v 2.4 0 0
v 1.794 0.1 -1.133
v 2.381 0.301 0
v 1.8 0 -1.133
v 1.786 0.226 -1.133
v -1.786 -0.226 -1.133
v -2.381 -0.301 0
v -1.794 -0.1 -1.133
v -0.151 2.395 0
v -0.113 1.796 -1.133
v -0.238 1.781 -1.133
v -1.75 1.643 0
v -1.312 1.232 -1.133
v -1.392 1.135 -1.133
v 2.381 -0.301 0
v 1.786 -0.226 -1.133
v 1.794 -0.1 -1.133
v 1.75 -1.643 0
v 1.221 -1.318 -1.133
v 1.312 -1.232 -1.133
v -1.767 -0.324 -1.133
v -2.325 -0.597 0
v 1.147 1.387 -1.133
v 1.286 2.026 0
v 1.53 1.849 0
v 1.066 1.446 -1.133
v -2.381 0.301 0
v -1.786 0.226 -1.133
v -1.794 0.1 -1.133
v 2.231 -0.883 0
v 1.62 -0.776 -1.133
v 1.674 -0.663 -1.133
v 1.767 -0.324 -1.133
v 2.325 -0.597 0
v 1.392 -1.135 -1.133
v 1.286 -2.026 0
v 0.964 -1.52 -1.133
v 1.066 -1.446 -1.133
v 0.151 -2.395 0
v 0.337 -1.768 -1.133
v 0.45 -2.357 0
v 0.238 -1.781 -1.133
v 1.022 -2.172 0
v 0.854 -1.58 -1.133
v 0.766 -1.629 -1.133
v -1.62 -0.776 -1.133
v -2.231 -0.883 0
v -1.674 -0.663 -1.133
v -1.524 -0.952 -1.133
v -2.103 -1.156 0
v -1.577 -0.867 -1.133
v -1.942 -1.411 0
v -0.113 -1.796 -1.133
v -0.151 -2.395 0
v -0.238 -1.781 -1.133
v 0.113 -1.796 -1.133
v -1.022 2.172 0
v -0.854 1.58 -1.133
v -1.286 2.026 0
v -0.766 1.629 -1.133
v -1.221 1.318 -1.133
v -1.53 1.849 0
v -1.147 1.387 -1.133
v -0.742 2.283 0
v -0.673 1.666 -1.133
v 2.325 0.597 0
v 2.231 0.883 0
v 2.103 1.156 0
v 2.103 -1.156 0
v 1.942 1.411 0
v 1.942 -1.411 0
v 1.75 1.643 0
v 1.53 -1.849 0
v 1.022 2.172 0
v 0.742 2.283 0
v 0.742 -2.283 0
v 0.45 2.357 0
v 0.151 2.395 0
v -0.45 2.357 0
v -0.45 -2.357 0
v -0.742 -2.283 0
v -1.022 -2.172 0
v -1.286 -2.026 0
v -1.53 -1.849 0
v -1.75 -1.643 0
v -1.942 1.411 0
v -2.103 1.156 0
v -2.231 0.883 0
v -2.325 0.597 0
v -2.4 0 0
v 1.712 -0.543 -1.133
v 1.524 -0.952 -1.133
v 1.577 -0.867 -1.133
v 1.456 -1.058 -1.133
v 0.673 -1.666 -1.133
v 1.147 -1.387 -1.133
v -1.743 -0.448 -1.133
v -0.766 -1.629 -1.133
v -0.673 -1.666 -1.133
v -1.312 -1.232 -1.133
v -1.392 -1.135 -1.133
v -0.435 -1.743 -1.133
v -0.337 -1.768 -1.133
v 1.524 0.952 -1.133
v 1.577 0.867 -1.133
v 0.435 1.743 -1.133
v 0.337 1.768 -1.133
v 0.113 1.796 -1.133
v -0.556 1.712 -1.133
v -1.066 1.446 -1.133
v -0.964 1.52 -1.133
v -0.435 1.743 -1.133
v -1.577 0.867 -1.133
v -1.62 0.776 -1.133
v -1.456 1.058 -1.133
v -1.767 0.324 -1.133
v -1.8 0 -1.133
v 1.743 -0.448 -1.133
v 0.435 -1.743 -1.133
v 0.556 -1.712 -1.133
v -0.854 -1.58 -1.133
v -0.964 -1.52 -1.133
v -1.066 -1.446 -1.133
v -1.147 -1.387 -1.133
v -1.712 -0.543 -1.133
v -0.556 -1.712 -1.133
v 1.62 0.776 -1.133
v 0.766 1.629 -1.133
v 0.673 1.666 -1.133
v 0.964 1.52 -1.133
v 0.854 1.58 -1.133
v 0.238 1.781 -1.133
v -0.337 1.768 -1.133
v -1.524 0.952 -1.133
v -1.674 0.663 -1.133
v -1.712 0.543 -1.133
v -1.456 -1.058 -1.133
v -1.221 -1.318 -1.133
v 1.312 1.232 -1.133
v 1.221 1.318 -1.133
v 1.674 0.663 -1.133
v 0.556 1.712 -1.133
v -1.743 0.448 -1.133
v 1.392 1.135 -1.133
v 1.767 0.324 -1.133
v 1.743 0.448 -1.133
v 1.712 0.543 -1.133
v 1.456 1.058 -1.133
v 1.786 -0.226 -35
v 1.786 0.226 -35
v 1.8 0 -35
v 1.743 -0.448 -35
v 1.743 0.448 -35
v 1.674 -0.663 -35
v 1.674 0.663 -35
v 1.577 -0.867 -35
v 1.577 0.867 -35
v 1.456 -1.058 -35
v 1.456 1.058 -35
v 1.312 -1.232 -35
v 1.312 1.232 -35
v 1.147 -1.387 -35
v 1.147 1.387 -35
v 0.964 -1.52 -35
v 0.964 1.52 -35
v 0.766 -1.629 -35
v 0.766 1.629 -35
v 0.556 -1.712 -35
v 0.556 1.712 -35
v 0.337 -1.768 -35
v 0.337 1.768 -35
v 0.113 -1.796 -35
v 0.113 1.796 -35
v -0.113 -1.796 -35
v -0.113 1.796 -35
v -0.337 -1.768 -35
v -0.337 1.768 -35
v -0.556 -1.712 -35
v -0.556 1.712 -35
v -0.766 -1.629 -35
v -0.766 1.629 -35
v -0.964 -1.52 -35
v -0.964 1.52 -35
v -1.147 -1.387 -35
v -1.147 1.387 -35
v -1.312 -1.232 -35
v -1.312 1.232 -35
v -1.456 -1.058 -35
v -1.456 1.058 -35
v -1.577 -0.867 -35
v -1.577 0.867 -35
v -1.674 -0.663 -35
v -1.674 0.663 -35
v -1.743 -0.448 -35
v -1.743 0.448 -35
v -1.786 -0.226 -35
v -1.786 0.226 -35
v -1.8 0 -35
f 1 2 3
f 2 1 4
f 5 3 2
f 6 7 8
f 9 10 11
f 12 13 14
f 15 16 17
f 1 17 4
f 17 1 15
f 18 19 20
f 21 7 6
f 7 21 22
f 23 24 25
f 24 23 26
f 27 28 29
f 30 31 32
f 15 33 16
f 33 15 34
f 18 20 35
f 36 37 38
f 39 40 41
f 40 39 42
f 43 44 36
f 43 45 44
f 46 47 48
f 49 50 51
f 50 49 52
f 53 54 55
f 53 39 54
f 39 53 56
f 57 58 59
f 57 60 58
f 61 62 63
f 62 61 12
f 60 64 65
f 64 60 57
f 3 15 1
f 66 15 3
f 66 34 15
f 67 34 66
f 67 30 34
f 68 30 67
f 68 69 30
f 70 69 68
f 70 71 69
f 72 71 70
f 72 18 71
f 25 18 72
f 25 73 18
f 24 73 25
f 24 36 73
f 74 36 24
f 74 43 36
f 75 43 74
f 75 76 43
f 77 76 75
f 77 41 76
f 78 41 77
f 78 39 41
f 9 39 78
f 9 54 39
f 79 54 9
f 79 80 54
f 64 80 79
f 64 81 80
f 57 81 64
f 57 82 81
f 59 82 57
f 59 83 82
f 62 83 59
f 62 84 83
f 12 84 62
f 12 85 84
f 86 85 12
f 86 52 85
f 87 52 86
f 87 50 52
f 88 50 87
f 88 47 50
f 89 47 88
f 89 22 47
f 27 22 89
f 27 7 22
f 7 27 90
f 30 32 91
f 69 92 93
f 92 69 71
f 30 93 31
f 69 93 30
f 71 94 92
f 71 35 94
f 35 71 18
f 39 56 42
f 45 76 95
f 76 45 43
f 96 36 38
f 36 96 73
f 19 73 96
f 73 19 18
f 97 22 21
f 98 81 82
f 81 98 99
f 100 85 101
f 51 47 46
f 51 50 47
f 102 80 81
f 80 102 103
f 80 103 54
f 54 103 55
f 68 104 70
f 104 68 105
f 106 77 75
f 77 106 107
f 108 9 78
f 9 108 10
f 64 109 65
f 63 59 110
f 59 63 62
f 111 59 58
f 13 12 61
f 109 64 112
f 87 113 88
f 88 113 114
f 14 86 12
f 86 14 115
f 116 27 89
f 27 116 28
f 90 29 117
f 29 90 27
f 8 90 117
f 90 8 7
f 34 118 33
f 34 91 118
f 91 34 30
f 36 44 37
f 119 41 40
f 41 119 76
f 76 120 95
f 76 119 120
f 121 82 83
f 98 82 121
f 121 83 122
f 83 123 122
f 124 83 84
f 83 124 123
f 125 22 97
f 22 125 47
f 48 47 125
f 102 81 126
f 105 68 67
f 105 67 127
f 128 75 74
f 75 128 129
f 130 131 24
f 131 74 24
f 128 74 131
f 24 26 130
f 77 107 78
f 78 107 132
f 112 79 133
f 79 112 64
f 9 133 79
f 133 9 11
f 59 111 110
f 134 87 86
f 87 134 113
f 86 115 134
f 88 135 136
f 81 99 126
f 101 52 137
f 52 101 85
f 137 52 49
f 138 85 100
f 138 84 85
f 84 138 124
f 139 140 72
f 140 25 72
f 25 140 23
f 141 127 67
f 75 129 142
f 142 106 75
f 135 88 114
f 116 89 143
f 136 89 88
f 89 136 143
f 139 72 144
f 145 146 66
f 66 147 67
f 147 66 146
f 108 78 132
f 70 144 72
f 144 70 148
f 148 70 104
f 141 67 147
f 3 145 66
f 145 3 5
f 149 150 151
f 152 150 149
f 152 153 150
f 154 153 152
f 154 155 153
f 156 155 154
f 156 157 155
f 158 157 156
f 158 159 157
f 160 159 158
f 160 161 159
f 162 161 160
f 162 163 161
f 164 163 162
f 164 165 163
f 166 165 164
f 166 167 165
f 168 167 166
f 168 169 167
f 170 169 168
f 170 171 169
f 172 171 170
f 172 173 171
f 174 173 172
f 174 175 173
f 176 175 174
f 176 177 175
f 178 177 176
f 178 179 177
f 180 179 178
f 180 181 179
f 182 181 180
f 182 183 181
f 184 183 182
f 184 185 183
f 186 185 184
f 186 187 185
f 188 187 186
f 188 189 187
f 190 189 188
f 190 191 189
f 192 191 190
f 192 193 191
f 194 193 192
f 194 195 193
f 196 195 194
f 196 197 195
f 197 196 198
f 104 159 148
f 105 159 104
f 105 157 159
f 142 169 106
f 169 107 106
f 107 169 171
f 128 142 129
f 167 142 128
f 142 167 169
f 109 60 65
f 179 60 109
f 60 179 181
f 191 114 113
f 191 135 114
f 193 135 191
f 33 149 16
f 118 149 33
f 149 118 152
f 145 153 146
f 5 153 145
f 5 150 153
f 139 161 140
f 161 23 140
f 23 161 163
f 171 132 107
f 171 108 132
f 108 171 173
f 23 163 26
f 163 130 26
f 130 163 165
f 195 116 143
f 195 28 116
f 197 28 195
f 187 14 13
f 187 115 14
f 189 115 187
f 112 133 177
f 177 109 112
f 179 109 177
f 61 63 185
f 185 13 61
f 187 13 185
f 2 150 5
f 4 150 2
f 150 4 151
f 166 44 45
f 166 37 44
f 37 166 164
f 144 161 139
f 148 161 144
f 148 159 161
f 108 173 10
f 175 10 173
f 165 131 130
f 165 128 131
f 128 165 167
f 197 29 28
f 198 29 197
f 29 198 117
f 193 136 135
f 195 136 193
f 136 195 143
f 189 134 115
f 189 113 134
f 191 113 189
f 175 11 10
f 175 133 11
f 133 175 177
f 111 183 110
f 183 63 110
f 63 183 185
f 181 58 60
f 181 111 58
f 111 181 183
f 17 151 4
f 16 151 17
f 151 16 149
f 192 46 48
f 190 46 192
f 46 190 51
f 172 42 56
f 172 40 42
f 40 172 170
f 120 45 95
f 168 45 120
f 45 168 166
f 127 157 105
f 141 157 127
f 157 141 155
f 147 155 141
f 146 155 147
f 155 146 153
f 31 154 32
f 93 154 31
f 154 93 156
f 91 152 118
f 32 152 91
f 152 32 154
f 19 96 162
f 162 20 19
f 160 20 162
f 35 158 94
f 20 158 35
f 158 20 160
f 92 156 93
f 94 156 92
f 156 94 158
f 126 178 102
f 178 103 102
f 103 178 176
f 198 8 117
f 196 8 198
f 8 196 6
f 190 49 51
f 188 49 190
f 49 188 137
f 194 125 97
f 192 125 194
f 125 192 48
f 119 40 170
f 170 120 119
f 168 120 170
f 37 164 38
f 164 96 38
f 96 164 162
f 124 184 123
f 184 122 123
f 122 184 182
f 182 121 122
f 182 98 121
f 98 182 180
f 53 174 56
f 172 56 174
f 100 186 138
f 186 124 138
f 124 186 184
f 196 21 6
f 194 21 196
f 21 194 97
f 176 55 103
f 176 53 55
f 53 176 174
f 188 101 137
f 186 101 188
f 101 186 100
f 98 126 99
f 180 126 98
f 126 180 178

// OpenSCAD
$fn = 50;


difference() {
	union() {
		translate(v = [0, 0, 0]) {
			rotate(a = [0, 0, 0]) {
				difference() {
					union() {
						translate(v = [0, 0, -1.7000000000]) {
							cylinder(h = 1.7000000000, r1 = 1.5000000000, r2 = 2.4000000000);
						}
						translate(v = [0, 0, -35.0000000000]) {
							cylinder(h = 35, r = 1.5000000000);
						}
						translate(v = [0, 0, -35.0000000000]) {
							cylinder(h = 35, r = 1.8000000000);
						}
						translate(v = [0, 0, -35.0000000000]) {
							cylinder(h = 35, r = 1.5000000000);
						}
					}
					union();
				}
			}
		}
	}
	union();
}
